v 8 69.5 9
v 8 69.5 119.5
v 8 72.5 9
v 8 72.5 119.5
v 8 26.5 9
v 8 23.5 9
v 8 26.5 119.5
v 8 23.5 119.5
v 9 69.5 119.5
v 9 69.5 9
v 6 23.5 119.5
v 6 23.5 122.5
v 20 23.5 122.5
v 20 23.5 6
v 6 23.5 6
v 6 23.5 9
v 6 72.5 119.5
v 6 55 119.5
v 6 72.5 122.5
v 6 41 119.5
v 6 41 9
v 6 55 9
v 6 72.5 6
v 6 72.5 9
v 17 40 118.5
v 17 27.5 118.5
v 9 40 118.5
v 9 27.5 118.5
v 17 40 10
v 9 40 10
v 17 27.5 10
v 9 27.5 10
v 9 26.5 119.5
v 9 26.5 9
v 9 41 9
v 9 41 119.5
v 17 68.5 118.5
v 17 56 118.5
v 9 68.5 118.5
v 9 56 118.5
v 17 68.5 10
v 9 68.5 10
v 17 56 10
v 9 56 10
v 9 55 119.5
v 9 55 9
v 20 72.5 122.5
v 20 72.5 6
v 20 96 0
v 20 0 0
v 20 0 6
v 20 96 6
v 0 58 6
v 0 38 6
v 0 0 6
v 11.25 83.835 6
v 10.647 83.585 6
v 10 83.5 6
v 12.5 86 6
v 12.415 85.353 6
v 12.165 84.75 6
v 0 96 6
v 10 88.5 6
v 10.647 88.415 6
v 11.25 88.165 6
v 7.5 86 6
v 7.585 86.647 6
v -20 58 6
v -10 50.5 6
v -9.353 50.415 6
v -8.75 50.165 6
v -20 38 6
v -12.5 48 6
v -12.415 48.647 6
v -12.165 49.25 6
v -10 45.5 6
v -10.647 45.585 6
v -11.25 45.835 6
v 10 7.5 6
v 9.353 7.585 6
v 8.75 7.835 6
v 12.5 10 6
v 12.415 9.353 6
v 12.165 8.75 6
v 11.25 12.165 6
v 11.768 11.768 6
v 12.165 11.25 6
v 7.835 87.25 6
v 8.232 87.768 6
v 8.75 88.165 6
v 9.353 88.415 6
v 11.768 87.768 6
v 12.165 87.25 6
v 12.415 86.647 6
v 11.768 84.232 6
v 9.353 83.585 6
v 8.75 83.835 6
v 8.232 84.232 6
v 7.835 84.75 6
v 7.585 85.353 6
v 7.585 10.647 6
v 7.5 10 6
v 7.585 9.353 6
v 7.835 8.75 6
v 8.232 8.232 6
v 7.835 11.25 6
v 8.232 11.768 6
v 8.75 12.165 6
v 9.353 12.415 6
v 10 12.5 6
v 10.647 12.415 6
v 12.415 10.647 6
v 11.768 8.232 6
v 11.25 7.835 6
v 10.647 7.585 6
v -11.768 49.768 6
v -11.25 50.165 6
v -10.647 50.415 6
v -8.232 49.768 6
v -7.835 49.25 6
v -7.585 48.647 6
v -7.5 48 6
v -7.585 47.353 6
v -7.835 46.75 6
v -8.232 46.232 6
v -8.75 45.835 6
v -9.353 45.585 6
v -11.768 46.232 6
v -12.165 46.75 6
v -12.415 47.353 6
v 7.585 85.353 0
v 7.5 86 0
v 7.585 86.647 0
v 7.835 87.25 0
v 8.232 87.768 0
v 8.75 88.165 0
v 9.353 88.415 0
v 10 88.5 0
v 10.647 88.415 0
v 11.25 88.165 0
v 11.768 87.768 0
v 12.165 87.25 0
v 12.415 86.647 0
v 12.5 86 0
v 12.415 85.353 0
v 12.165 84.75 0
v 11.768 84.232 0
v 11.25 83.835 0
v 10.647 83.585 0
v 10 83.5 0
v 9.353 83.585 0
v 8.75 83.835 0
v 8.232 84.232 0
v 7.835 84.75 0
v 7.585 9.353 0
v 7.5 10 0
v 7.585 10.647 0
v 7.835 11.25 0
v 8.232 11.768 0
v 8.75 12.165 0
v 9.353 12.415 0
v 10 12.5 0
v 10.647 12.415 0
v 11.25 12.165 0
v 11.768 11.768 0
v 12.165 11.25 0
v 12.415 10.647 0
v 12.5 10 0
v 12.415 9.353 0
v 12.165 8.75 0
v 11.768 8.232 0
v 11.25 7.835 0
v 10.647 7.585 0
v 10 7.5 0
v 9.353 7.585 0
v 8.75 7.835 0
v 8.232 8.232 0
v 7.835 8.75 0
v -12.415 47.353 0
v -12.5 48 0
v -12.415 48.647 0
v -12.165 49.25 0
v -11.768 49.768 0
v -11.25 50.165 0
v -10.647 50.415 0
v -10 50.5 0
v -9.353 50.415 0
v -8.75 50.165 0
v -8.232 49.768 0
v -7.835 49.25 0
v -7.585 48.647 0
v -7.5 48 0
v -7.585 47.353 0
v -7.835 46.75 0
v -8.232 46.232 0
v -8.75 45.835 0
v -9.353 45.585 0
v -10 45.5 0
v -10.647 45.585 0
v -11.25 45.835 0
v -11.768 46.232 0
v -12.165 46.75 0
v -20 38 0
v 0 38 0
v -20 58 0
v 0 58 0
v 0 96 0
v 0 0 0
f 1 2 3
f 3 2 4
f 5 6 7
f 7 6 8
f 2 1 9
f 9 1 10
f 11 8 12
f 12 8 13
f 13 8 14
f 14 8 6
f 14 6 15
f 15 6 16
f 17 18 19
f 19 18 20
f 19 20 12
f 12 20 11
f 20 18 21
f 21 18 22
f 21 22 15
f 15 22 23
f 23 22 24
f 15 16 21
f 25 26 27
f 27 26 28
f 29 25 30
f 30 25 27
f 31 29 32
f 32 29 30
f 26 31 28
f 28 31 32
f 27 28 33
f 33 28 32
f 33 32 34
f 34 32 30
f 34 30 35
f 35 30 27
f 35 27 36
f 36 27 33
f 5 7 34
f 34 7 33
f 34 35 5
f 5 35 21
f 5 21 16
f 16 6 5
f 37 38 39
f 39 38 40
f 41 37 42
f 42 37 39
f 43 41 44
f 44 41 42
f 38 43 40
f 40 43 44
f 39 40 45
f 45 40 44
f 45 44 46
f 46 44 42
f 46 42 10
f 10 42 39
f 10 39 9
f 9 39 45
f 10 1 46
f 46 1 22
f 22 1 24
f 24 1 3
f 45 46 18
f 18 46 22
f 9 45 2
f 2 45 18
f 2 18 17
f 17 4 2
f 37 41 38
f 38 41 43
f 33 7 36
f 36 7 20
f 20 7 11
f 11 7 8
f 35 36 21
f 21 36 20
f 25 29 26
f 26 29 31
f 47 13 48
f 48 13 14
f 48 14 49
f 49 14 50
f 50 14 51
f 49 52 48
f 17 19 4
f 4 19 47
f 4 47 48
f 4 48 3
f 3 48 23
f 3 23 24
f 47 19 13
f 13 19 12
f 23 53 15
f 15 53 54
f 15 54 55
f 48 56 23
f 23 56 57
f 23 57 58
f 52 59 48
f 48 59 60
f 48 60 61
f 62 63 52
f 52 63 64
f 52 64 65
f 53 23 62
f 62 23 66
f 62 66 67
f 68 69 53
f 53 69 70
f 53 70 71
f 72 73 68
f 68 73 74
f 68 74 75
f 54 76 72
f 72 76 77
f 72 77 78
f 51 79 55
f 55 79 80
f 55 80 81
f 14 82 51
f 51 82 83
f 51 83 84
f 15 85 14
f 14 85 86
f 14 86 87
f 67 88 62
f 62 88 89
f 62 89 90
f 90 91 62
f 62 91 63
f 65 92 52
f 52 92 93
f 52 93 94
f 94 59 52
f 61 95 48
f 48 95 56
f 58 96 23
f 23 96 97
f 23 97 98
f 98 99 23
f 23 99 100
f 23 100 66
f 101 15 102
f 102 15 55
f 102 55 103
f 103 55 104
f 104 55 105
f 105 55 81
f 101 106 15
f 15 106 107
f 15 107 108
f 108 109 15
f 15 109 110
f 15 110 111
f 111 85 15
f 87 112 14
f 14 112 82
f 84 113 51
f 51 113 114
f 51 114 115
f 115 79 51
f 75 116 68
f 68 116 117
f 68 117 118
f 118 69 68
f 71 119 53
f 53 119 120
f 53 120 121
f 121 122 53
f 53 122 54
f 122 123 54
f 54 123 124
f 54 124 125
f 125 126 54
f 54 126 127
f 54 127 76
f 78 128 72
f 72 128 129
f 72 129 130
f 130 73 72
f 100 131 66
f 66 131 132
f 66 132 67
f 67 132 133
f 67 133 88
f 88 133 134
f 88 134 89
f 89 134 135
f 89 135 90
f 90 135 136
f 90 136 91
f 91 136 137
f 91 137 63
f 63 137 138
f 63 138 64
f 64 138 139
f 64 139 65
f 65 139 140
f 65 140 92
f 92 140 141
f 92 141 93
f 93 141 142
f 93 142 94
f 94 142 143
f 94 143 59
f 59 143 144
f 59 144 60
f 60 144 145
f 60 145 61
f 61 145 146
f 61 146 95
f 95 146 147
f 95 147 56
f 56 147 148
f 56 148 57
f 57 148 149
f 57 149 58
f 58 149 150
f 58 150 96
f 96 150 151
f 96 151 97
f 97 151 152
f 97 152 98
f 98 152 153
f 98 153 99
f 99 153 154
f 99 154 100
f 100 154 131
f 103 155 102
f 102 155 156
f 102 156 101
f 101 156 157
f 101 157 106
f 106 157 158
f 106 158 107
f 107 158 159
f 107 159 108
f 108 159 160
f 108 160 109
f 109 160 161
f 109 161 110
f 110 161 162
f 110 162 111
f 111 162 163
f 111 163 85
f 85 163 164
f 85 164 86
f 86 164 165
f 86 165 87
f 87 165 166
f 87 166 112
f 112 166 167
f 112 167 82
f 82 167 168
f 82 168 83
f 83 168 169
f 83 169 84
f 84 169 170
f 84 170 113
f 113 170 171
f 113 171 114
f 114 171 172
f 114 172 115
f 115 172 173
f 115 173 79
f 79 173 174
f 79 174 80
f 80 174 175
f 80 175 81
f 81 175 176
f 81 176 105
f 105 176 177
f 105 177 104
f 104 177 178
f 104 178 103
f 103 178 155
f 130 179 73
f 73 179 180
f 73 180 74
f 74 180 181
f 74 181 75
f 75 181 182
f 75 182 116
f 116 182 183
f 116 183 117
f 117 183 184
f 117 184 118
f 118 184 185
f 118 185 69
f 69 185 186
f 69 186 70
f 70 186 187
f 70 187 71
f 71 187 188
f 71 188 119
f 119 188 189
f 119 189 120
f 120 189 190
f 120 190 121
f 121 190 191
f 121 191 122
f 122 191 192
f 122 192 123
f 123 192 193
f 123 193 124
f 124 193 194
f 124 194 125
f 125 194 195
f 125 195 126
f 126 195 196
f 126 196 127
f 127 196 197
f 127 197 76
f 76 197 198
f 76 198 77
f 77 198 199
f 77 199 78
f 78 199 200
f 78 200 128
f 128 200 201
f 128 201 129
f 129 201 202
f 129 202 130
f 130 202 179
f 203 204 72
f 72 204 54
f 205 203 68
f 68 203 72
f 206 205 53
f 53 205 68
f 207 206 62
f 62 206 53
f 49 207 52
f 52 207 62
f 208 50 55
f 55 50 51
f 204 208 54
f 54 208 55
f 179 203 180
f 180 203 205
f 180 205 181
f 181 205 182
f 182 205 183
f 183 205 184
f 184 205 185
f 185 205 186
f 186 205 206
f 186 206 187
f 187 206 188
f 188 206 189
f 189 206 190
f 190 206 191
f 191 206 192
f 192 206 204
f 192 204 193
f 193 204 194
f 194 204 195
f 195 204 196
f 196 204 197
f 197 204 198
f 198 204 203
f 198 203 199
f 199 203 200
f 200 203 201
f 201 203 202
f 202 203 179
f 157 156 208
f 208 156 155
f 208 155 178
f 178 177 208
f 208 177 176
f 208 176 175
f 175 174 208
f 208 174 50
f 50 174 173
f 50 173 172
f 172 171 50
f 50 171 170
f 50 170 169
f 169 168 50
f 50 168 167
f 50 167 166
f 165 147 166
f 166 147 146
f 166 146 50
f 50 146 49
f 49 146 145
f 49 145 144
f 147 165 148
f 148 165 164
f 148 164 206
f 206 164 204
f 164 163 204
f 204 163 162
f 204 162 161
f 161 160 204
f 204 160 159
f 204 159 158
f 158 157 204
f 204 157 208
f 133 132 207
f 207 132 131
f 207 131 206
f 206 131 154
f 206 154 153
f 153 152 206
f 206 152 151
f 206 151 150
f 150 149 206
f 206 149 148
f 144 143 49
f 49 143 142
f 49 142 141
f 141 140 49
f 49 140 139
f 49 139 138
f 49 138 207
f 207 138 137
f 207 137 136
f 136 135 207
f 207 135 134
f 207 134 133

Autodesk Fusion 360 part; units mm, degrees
sketch "Sketch8" plane through (0, 0, 0) normal (0, 0, 1) x (1, 0, 0)
  line L0 (0, 0) -> (20, 0)
  line L1 (20, 0) -> (20, 96)
  line L2 (20, 96) -> (0, 96)
  line L3 (0, 96) -> (0, 0)
  line L4 (0, 48) -> (-20, 48) construction
  line L5 (-20, 48) -> (-20, 58) construction
  line L6 (-20, 58) -> (0, 58)
  line L7 (0, 58) -> (0, 38)
  line L8 (0, 38) -> (-20, 38)
  line L9 (-20, 38) -> (-20, 58)
  line L10 (-20, 58) -> (0, 38) construction
  circle A0 centre (-10, 48) radius 2.5
  line L11 (0, 96) -> (20, 76) construction
  line L12 (0, 96) -> (28.2843, 96) construction
  circle A1 centre (10, 86) radius 2.5
  circle A2 centre (10, 10) radius 2.5
  dimension "d44" = 20
  dimension "d45" = 96
  dimension "d46" = 20
  dimension "d47" = 10
  dimension "d48" = 20
  dimension "d49" = 20
  dimension "d50" = 5
  dimension "d51" = 45
  dimension "d52" = 5
extrude "Extrude10" add sketch "Sketch8" along normal blind 6
sketch "Sketch9" plane through (0, 0, 6) normal (0, 0, 1) x (-1, 0, 0)
  circle A0 centre (10, -48) radius 2.5
  circle A1 centre (-10, -10) radius 2.5
  circle A2 centre (-10, -86) radius 2.5
  line L0 (0, -38) -> (0, 0)
  line L1 (0, 0) -> (-20, 0)
  line L2 (-20, 0) -> (-20, -96)
  line L3 (-20, -96) -> (0, -96)
  line L4 (0, -96) -> (0, -58)
  line L5 (0, -58) -> (20, -58)
  line L6 (20, -58) -> (20, -38)
  line L7 (20, -38) -> (0, -38)
  line L8 (-20, -48) -> (20, -48) construction
  line L9 (-20, -48) -> (-20, -52) construction
  line L10 (-20, -52) -> (-6, -52)
  line L11 (-6, -52) -> (-6, -72.5)
  line L12 (-6, -72.5) -> (-20, -72.5)
  line L13 (-20, -72.5) -> (-20, -52)
  line L14 (-20, -44) -> (-6, -44)
  line L15 (-6, -44) -> (-6, -23.5)
  line L16 (-6, -23.5) -> (-20, -23.5)
  dimension "d55" = 4
  dimension "d57" = 14
  dimension "d58" = 20.5
extrude "Extrude11" add sketch "Sketch9" along normal blind 116.5 contours L2 L14 L15 L16 | L2 L10 L11 L12 L13
sketch "Sketch10" plane through (0, 0, 122.5) normal (0, 0, 1) x (-1, 0, 0)
  line L0 (-6, -23.5) -> (-20, -23.5)
  line L1 (-20, -23.5) -> (-20, -44)
  line L2 (-20, -44) -> (-6, -44)
  line L3 (-6, -44) -> (-6, -23.5)
  line L4 (-20, -72.5) -> (-6, -72.5)
  line L5 (-6, -72.5) -> (-6, -52)
  line L6 (-6, -52) -> (-20, -52)
  line L7 (-20, -52) -> (-20, -72.5)
  line L8 (-6, -72.5) -> (-20, -72.5)
  line L9 (-20, -72.5) -> (-20, -23.5)
  line L10 (-20, -23.5) -> (-6, -23.5)
  line L11 (-6, -23.5) -> (-6, -72.5)
extrude "Extrude12" add sketch "Sketch10" against normal blind 3
sketch "Sketch11" plane through (20, 0, 0) normal (1, 0, 0) x (0, 1, 0)
  line L0 (52, 119.5) -> (52, 6)
  line L1 (52, 6) -> (44, 6)
  line L2 (44, 6) -> (44, 119.5)
  line L3 (72.5, 122.5) -> (23.5, 122.5)
  line L4 (72.5, 6) -> (72.5, 122.5)
  line L5 (44, 119.5) -> (52, 119.5)
  line L6 (23.5, 122.5) -> (23.5, 6)
  line L7 (23.5, 6) -> (0, 6)
  line L8 (0, 6) -> (0, 0)
  line L9 (0, 0) -> (96, 0)
  line L10 (96, 0) -> (96, 6)
  line L11 (96, 6) -> (72.5, 6)
  line L12 (23.5, 6) -> (44, 6) construction
  line L13 (48, 119.5) -> (48, 6) construction
  line L14 (26.5, 119.5) -> (41, 119.5)
  line L15 (41, 119.5) -> (41, 9)
  line L16 (41, 9) -> (26.5, 9)
  line L17 (26.5, 9) -> (26.5, 119.5)
  line L18 (55, 119.5) -> (55, 9)
  line L19 (69.5, 119.5) -> (55, 119.5)
  line L20 (69.5, 9) -> (69.5, 119.5)
  line L21 (55, 9) -> (69.5, 9)
  dimension "d64" = 3
  dimension "d65" = 3
  dimension "d67" = 3
  dimension "d68" = 3
sketch "Sketch14" plane through (6, 0, 0) normal (-1, 0, 0) x (0, -1, 0)
  line L0 (-72.5, 122.5) -> (-72.5, 6)
  line L1 (-72.5, 6) -> (-52, 6)
  line L2 (-52, 6) -> (-52, 119.5)
  line L3 (-52, 119.5) -> (-44, 119.5)
  line L4 (-44, 119.5) -> (-44, 6)
  line L5 (-44, 6) -> (-23.5, 6)
  line L6 (-23.5, 6) -> (-23.5, 122.5)
  line L7 (-23.5, 122.5) -> (-72.5, 122.5)
  line L8 (-69.5, 9) -> (-69.5, 119.5)
  line L9 (-55, 9) -> (-69.5, 9)
  line L10 (-55, 119.5) -> (-55, 9)
  line L11 (-69.5, 119.5) -> (-55, 119.5)
  line L12 (-26.5, 119.5) -> (-41, 119.5)
  line L13 (-41, 119.5) -> (-41, 9)
  line L14 (-26.5, 9) -> (-26.5, 119.5)
  line L15 (-41, 9) -> (-26.5, 9)
extrude "Extrude13" cut sketch "Sketch14" against normal blind 11 contours L8 L9 L10 L11 | L12 L13 L14 L15
extrude "Extrude14" add 1 faces at (15.3333, 46.6667, 119.5) along direction (0, 0, -1) up to surface (113.5 mm away)
sketch "Sketch15" plane through (17, 0, 0) normal (-1, 0, 0) x (0, -1, 0)
  line L0 (-69.5, 119.5) -> (-69.5, 9)
  line L1 (-69.5, 9) -> (-55, 9)
  line L2 (-55, 9) -> (-55, 119.5)
  line L3 (-55, 119.5) -> (-69.5, 119.5)
  line L4 (-56, 118.5) -> (-68.5, 118.5)
  line L5 (-68.5, 118.5) -> (-68.5, 10)
  line L6 (-68.5, 10) -> (-56, 10)
  line L7 (-56, 10) -> (-56, 118.5)
extrude "Extrude15" add sketch "Sketch15" along normal blind 8
sketch "Sketch16" plane through (17, 0, 0) normal (-1, 0, 0) x (0, -1, 0)
  line L0 (-41, 9) -> (-26.5, 9)
  line L1 (-26.5, 9) -> (-26.5, 119.5)
  line L2 (-26.5, 119.5) -> (-41, 119.5)
  line L3 (-41, 119.5) -> (-41, 9)
  line L4 (-27.5, 118.5) -> (-40, 118.5)
  line L5 (-40, 118.5) -> (-40, 10)
  line L6 (-40, 10) -> (-27.5, 10)
  line L7 (-27.5, 10) -> (-27.5, 118.5)
extrude "Extrude16" add sketch "Sketch16" along normal blind 8
sketch "Sketch17" plane through (6, 0, 0) normal (-1, 0, 0) x (0, -1, 0)
  line L0 (-55, 9) -> (-69.5, 9)
  line L1 (-69.5, 9) -> (-69.5, 119.5)
  line L2 (-69.5, 119.5) -> (-55, 119.5)
  line L3 (-55, 119.5) -> (-55, 9)
  line L4 (-26.5, 119.5) -> (-26.5, 9)
  line L5 (-26.5, 9) -> (-41, 9)
  line L6 (-41, 9) -> (-41, 119.5)
  line L7 (-41, 119.5) -> (-26.5, 119.5)
  line L8 (-72.5, 6) -> (-23.5, 6)
  line L9 (-23.5, 6) -> (-23.5, 122.5)
  line L10 (-23.5, 122.5) -> (-72.5, 122.5)
  line L11 (-72.5, 122.5) -> (-72.5, 6)
  line L12 (-69.5, 9) -> (-72.5, 9)
  line L13 (-26.5, 9) -> (-23.5, 9)
  line L14 (-26.5, 119.5) -> (-23.5, 119.5)
  line L15 (-69.5, 119.5) -> (-72.5, 119.5)
extrude "Extrude17" cut sketch "Sketch17" against normal blind 2 contours L1 L11 L12 L15 | L4 L9 L13 L14
equation "thickness = 6 mm"
equation "bar_width = 14 mm"
equation "bar_length = 110 mm"
equation "bar_under_depth = 8 mm"
equation "bar_thickness = 3 mm"
equation "bar_shelf_width = 1 mm"
equation "space_between_bars = 8 mm"
equation "frame_width = 96 mm"
equation "extrusion_width = 20 mm"
equation "mounting_hole_size = 5 mm"
equation "d44 = extrusion_width"
equation "d45 = frame_width"
equation "d46 = extrusion_width"
equation "d47 = extrusion_width / 2"
equation "d48 = extrusion_width"
equation "d49 = extrusion_width"
equation "d50 = mounting_hole_size"
equation "d52 = mounting_hole_size"
equation "d53 = thickness"
equation "d55 = space_between_bars / 2"
equation "small_thickness = 3 mm"
equation "d57 = bar_thickness + bar_under_depth + small_thickness"
equation "d58 = bar_width + small_thickness * 2 + tolerance * 2"
equation "tolerance = 0.25 mm"
equation "d60 = bar_length + small_thickness * 2 + tolerance * 2"
equation "d64 = small_thickness"
equation "d65 = small_thickness"
equation "d67 = small_thickness"
equation "d68 = small_thickness"
equation "d74 = bar_under_depth"
equation "d77 = bar_under_depth"
equation "wire_cutout_depth = 2 mm"
